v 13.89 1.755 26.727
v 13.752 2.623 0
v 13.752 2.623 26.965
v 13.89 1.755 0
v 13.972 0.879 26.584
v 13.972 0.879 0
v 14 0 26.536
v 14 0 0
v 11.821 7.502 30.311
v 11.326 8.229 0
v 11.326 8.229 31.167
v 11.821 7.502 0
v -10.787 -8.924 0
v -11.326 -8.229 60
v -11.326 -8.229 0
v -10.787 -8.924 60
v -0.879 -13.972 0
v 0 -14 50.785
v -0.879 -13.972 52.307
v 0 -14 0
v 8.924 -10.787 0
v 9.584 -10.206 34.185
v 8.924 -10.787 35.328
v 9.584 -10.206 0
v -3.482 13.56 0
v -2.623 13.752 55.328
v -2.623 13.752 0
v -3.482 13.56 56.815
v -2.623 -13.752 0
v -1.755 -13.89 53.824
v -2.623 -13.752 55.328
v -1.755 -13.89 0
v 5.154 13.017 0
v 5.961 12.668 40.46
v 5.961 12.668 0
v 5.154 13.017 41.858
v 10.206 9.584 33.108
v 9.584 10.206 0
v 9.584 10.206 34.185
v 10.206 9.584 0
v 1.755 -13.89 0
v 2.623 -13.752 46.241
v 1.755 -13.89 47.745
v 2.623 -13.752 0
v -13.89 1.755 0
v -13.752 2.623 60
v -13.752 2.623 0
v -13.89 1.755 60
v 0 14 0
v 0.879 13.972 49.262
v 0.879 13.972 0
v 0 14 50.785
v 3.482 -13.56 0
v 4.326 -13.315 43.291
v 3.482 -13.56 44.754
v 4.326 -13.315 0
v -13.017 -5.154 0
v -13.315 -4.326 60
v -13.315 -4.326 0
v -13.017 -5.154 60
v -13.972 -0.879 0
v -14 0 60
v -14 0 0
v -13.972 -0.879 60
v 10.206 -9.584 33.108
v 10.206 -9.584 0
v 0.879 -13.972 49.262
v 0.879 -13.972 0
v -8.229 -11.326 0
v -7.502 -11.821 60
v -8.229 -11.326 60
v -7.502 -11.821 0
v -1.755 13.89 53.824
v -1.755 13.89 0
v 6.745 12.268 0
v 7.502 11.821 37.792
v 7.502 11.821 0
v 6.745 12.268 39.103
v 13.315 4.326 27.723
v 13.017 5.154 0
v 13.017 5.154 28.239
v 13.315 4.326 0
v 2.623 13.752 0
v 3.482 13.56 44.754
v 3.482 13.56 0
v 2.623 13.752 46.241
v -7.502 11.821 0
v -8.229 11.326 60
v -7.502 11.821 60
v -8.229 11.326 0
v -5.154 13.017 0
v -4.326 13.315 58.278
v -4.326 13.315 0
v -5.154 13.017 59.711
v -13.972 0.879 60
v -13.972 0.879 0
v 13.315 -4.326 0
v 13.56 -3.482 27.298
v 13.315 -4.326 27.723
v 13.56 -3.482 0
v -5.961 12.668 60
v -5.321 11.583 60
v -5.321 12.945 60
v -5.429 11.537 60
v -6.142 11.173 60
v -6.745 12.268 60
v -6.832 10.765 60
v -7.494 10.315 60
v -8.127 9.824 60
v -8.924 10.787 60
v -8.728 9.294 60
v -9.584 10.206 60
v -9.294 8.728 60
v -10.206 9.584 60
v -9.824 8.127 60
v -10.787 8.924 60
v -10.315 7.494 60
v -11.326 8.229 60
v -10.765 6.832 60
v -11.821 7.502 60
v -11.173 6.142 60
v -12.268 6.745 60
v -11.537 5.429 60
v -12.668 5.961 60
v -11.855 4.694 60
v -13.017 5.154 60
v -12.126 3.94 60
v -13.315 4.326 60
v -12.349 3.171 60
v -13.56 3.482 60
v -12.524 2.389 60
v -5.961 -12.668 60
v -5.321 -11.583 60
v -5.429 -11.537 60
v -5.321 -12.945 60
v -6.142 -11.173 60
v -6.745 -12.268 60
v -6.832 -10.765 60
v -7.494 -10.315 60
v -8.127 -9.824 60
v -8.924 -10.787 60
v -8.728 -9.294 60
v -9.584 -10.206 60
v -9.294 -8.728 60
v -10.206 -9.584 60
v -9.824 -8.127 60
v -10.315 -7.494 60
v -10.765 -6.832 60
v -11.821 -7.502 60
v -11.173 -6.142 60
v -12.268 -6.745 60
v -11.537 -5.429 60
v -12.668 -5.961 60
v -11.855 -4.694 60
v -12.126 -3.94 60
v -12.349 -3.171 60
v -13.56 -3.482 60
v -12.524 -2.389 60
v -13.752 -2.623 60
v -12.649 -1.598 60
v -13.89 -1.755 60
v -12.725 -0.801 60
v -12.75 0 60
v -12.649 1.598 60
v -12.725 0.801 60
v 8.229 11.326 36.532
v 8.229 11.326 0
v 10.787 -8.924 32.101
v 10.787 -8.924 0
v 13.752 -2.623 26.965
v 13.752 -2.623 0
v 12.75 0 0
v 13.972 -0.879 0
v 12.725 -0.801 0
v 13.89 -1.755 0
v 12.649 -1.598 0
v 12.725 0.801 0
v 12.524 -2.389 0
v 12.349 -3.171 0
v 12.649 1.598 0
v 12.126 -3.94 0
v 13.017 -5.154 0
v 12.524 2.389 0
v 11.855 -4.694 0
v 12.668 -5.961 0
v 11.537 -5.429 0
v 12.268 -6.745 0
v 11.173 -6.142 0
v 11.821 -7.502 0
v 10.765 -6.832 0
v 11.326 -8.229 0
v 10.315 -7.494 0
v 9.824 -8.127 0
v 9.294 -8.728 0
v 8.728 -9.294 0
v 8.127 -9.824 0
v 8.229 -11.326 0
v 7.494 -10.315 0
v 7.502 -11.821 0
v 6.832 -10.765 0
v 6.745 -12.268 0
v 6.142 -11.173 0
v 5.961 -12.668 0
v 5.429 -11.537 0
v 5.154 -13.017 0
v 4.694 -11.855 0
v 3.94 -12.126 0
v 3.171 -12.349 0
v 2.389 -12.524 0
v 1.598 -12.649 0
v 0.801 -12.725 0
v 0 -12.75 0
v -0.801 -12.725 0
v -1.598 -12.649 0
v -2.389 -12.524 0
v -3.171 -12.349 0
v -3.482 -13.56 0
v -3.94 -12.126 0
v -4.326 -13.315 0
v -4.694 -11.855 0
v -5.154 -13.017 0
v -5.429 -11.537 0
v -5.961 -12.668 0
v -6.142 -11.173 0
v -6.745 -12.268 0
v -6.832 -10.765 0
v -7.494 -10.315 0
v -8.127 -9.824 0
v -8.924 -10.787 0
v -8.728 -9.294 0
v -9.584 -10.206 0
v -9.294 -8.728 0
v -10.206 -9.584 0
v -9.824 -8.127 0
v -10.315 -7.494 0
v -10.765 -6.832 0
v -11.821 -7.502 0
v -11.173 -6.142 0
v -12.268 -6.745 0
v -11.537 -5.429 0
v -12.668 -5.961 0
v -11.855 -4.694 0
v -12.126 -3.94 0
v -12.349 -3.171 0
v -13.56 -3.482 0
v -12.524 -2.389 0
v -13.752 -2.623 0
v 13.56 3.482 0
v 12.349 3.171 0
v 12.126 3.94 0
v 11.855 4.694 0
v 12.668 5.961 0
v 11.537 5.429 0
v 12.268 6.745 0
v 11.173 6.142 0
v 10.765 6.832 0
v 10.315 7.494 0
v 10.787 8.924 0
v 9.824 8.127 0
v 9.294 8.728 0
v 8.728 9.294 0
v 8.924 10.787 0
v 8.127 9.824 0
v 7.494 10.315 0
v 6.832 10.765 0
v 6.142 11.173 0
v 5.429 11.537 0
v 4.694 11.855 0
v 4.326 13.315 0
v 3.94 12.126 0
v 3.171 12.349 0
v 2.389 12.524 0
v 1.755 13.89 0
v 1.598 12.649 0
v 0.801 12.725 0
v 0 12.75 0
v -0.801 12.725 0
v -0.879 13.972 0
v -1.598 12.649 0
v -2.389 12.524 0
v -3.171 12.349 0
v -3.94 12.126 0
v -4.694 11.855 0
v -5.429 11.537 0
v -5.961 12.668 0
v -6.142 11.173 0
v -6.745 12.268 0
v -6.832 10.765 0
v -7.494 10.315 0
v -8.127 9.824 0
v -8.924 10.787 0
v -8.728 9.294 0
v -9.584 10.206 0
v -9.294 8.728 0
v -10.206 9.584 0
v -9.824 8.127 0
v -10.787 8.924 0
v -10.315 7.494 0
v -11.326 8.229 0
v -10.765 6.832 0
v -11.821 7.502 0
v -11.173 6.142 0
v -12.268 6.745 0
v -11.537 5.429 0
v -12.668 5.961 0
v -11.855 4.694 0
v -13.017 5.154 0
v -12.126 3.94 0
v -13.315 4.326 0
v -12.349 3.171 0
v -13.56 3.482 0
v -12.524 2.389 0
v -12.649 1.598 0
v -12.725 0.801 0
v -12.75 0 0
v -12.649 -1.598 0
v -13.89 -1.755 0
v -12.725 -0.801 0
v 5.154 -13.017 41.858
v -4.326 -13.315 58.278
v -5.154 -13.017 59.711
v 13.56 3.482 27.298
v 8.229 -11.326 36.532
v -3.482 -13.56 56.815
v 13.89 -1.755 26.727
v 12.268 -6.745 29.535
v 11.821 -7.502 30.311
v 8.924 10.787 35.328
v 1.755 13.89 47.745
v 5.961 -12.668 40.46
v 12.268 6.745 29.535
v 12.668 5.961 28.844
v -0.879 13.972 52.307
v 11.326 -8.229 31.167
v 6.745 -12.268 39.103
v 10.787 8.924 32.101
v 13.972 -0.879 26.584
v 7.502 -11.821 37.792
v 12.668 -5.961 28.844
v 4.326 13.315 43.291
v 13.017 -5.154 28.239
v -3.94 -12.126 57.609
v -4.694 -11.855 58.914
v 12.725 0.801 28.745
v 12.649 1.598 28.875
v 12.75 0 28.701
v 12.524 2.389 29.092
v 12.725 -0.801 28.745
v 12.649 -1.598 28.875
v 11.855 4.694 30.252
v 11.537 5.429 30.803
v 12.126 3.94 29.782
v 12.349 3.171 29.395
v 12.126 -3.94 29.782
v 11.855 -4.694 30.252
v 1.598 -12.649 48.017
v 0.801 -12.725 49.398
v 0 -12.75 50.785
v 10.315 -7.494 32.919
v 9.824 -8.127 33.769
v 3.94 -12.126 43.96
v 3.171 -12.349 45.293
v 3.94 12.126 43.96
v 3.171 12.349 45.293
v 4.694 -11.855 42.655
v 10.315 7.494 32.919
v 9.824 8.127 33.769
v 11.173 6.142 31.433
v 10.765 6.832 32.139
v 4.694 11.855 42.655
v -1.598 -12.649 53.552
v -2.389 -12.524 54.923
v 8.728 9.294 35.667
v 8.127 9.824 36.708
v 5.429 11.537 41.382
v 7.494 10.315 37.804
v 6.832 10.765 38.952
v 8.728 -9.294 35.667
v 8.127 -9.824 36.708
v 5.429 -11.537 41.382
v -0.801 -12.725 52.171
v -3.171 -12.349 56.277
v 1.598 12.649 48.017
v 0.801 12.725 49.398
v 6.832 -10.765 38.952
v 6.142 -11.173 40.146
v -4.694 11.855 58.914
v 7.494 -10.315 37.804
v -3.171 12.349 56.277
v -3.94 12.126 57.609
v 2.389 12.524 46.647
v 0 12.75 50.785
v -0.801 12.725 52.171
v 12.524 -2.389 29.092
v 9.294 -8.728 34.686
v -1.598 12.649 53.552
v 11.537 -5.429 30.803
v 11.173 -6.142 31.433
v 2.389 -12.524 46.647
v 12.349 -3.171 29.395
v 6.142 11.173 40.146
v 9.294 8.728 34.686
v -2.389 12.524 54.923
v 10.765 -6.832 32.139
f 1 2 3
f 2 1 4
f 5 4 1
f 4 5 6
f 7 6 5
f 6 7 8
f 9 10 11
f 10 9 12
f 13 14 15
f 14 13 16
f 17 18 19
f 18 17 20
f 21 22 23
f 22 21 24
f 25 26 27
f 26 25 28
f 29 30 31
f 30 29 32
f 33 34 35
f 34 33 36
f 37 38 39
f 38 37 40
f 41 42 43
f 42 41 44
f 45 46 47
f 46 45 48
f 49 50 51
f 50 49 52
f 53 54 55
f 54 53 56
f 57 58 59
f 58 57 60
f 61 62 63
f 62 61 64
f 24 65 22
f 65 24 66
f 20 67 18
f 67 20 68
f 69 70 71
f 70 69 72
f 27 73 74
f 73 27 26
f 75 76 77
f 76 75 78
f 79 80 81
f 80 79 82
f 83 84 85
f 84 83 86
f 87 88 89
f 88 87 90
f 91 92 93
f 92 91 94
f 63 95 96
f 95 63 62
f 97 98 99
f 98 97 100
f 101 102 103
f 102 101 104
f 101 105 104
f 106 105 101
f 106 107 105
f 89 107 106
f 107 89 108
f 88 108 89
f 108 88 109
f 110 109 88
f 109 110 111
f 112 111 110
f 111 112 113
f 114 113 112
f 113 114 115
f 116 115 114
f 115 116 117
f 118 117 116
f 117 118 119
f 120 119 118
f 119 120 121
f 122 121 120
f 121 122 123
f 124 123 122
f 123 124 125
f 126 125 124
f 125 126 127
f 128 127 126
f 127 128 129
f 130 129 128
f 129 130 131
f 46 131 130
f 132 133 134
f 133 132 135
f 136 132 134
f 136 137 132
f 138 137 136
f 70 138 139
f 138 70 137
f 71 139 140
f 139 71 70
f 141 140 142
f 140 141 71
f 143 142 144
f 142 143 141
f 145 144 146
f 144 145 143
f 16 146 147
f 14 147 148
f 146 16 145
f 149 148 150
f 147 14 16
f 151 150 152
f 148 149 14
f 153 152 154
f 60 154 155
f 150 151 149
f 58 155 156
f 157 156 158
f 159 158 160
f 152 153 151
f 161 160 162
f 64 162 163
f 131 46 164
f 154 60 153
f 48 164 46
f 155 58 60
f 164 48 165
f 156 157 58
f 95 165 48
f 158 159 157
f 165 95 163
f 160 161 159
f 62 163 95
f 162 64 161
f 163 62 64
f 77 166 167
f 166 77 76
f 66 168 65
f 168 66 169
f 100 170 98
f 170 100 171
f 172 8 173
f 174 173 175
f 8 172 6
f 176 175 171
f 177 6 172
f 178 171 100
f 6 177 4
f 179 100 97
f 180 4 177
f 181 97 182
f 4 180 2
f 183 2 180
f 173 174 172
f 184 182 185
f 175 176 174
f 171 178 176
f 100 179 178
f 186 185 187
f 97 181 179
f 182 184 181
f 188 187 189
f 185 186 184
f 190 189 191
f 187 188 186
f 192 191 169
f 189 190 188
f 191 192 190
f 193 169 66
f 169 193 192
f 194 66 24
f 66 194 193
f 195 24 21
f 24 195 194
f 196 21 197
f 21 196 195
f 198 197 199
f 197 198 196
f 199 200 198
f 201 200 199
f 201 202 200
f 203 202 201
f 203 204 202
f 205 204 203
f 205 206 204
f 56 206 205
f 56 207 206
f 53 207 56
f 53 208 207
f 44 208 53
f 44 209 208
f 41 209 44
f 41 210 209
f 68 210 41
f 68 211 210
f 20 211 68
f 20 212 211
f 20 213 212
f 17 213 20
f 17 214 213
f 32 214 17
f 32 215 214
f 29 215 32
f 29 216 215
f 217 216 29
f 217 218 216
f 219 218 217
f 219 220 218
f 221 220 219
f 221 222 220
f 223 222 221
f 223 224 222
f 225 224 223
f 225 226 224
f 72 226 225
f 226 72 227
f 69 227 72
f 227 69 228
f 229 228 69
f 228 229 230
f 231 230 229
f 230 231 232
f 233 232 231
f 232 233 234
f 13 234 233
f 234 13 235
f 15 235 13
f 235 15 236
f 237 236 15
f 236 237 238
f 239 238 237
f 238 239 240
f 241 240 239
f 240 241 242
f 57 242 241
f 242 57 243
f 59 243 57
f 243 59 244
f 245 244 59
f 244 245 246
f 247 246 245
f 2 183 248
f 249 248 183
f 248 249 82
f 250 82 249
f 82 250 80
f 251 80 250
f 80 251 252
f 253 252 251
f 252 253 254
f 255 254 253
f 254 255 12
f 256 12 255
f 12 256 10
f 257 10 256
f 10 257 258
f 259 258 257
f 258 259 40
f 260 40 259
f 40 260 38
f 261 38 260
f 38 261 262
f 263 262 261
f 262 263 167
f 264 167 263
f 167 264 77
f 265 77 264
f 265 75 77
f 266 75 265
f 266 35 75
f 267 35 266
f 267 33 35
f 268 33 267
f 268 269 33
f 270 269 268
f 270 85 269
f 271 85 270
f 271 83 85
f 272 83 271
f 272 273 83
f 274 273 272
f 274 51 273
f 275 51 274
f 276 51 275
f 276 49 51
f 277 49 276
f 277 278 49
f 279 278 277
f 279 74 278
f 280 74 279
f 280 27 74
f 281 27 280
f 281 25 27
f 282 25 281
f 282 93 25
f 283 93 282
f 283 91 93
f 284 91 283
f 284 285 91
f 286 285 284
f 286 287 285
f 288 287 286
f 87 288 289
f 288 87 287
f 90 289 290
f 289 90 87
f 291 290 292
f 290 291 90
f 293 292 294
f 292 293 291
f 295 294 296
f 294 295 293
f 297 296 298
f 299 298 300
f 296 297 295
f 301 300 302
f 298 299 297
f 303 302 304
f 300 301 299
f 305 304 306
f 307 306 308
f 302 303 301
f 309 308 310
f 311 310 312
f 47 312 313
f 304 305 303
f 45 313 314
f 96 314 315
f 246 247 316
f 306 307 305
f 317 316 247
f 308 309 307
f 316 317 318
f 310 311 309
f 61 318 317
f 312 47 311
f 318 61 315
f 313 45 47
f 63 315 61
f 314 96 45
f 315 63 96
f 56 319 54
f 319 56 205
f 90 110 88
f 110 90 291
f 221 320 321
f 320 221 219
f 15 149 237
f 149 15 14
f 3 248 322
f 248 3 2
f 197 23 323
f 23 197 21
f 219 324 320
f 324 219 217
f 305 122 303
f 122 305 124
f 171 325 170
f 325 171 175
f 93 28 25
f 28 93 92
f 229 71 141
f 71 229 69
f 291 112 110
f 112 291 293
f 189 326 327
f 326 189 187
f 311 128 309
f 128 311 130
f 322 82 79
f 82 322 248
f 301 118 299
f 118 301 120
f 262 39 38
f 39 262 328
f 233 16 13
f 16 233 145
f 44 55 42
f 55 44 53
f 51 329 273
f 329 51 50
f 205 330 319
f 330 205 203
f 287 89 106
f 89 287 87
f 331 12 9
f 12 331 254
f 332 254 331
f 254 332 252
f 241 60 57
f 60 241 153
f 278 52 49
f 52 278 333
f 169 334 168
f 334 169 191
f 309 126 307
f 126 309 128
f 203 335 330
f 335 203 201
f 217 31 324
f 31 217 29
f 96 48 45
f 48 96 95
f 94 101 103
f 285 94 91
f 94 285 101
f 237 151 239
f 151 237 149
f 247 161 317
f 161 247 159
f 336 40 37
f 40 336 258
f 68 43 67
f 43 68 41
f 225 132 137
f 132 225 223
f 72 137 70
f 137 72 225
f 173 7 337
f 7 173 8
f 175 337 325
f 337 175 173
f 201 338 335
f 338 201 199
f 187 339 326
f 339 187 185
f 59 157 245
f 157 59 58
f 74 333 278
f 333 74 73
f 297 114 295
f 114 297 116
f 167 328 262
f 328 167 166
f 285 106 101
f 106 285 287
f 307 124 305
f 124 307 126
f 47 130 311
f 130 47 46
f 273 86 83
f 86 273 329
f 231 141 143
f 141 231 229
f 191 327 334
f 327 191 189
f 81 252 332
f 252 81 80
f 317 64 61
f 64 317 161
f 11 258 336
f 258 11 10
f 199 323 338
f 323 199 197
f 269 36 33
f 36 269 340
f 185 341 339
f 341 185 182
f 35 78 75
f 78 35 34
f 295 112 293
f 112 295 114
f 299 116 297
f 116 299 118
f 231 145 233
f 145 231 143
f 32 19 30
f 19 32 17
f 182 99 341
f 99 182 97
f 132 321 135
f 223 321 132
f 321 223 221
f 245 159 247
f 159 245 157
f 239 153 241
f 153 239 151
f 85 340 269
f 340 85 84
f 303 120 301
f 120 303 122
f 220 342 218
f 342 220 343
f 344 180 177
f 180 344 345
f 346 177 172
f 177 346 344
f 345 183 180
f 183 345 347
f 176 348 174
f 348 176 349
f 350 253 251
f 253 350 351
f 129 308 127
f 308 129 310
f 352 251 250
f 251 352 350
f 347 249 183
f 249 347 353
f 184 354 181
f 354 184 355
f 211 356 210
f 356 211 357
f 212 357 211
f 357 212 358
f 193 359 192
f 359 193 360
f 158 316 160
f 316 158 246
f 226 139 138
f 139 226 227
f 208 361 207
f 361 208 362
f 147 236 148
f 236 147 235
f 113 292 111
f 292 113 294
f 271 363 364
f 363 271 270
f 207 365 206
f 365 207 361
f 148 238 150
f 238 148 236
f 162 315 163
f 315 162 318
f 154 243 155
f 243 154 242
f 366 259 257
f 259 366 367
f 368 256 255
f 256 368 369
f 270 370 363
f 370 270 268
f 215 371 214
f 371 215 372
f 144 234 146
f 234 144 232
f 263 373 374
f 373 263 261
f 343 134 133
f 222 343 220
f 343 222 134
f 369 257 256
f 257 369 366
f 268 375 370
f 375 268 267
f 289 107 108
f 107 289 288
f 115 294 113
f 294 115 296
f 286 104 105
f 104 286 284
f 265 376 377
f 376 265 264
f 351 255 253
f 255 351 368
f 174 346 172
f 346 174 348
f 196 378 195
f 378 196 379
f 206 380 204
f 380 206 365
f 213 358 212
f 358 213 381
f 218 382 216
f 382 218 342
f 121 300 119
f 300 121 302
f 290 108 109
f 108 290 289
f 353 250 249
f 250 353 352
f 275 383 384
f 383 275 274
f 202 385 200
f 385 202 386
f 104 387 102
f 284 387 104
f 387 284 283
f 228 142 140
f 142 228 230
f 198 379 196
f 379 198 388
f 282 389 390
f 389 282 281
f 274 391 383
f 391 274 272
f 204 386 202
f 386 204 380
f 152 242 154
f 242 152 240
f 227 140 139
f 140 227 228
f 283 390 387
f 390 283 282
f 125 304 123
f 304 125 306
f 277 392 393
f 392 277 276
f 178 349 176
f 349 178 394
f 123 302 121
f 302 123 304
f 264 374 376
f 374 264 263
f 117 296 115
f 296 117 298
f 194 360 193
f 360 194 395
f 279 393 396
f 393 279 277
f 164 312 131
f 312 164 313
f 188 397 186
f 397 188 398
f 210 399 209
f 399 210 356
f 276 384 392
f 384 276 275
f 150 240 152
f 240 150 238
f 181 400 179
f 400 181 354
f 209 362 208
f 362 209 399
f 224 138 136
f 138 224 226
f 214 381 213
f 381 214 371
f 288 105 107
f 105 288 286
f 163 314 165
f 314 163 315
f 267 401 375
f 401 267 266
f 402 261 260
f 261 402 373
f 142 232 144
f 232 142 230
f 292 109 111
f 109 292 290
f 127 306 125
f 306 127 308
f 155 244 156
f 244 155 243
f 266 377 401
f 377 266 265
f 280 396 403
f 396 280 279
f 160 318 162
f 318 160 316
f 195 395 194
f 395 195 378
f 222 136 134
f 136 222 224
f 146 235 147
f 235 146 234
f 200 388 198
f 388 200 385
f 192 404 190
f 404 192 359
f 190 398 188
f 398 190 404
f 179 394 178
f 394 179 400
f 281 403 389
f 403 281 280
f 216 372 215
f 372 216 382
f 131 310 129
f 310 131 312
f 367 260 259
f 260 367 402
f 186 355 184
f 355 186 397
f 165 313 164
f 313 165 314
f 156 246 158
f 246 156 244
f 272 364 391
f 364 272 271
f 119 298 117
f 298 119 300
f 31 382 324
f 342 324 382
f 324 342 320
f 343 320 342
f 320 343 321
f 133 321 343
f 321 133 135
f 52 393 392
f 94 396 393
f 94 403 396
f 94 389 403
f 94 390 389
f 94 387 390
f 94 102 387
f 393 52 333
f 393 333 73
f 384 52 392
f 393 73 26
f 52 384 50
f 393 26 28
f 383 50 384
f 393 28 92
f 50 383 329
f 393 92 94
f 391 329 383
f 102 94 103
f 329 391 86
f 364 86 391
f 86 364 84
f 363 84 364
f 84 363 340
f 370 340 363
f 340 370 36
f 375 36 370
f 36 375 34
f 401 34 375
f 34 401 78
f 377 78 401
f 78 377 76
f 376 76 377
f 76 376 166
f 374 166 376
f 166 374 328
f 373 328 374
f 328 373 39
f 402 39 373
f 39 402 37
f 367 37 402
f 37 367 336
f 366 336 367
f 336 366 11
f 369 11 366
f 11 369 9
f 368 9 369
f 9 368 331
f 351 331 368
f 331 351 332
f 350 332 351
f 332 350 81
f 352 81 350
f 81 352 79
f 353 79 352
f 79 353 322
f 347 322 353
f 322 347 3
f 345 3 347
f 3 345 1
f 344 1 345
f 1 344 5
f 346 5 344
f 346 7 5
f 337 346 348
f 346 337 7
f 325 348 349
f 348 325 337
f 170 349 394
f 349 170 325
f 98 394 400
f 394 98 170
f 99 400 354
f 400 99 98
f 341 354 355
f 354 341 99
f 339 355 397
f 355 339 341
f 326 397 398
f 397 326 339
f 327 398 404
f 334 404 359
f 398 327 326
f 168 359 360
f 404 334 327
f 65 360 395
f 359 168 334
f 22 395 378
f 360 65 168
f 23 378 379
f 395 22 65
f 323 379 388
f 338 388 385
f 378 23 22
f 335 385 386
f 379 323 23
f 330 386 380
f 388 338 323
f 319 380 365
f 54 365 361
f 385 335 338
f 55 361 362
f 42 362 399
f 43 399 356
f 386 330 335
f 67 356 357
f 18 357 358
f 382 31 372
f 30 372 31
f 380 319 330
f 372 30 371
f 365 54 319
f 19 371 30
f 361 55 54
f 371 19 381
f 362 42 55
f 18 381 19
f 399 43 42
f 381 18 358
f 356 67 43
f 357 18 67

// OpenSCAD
$fn=100;

difference() {
    cylinder(60,14,14);
    cylinder(60,12.75,12.75);
    translate([12,0,60]){
        rotate([0,60,0]){
            cube([60,40,30],true);
        }
    }
}
